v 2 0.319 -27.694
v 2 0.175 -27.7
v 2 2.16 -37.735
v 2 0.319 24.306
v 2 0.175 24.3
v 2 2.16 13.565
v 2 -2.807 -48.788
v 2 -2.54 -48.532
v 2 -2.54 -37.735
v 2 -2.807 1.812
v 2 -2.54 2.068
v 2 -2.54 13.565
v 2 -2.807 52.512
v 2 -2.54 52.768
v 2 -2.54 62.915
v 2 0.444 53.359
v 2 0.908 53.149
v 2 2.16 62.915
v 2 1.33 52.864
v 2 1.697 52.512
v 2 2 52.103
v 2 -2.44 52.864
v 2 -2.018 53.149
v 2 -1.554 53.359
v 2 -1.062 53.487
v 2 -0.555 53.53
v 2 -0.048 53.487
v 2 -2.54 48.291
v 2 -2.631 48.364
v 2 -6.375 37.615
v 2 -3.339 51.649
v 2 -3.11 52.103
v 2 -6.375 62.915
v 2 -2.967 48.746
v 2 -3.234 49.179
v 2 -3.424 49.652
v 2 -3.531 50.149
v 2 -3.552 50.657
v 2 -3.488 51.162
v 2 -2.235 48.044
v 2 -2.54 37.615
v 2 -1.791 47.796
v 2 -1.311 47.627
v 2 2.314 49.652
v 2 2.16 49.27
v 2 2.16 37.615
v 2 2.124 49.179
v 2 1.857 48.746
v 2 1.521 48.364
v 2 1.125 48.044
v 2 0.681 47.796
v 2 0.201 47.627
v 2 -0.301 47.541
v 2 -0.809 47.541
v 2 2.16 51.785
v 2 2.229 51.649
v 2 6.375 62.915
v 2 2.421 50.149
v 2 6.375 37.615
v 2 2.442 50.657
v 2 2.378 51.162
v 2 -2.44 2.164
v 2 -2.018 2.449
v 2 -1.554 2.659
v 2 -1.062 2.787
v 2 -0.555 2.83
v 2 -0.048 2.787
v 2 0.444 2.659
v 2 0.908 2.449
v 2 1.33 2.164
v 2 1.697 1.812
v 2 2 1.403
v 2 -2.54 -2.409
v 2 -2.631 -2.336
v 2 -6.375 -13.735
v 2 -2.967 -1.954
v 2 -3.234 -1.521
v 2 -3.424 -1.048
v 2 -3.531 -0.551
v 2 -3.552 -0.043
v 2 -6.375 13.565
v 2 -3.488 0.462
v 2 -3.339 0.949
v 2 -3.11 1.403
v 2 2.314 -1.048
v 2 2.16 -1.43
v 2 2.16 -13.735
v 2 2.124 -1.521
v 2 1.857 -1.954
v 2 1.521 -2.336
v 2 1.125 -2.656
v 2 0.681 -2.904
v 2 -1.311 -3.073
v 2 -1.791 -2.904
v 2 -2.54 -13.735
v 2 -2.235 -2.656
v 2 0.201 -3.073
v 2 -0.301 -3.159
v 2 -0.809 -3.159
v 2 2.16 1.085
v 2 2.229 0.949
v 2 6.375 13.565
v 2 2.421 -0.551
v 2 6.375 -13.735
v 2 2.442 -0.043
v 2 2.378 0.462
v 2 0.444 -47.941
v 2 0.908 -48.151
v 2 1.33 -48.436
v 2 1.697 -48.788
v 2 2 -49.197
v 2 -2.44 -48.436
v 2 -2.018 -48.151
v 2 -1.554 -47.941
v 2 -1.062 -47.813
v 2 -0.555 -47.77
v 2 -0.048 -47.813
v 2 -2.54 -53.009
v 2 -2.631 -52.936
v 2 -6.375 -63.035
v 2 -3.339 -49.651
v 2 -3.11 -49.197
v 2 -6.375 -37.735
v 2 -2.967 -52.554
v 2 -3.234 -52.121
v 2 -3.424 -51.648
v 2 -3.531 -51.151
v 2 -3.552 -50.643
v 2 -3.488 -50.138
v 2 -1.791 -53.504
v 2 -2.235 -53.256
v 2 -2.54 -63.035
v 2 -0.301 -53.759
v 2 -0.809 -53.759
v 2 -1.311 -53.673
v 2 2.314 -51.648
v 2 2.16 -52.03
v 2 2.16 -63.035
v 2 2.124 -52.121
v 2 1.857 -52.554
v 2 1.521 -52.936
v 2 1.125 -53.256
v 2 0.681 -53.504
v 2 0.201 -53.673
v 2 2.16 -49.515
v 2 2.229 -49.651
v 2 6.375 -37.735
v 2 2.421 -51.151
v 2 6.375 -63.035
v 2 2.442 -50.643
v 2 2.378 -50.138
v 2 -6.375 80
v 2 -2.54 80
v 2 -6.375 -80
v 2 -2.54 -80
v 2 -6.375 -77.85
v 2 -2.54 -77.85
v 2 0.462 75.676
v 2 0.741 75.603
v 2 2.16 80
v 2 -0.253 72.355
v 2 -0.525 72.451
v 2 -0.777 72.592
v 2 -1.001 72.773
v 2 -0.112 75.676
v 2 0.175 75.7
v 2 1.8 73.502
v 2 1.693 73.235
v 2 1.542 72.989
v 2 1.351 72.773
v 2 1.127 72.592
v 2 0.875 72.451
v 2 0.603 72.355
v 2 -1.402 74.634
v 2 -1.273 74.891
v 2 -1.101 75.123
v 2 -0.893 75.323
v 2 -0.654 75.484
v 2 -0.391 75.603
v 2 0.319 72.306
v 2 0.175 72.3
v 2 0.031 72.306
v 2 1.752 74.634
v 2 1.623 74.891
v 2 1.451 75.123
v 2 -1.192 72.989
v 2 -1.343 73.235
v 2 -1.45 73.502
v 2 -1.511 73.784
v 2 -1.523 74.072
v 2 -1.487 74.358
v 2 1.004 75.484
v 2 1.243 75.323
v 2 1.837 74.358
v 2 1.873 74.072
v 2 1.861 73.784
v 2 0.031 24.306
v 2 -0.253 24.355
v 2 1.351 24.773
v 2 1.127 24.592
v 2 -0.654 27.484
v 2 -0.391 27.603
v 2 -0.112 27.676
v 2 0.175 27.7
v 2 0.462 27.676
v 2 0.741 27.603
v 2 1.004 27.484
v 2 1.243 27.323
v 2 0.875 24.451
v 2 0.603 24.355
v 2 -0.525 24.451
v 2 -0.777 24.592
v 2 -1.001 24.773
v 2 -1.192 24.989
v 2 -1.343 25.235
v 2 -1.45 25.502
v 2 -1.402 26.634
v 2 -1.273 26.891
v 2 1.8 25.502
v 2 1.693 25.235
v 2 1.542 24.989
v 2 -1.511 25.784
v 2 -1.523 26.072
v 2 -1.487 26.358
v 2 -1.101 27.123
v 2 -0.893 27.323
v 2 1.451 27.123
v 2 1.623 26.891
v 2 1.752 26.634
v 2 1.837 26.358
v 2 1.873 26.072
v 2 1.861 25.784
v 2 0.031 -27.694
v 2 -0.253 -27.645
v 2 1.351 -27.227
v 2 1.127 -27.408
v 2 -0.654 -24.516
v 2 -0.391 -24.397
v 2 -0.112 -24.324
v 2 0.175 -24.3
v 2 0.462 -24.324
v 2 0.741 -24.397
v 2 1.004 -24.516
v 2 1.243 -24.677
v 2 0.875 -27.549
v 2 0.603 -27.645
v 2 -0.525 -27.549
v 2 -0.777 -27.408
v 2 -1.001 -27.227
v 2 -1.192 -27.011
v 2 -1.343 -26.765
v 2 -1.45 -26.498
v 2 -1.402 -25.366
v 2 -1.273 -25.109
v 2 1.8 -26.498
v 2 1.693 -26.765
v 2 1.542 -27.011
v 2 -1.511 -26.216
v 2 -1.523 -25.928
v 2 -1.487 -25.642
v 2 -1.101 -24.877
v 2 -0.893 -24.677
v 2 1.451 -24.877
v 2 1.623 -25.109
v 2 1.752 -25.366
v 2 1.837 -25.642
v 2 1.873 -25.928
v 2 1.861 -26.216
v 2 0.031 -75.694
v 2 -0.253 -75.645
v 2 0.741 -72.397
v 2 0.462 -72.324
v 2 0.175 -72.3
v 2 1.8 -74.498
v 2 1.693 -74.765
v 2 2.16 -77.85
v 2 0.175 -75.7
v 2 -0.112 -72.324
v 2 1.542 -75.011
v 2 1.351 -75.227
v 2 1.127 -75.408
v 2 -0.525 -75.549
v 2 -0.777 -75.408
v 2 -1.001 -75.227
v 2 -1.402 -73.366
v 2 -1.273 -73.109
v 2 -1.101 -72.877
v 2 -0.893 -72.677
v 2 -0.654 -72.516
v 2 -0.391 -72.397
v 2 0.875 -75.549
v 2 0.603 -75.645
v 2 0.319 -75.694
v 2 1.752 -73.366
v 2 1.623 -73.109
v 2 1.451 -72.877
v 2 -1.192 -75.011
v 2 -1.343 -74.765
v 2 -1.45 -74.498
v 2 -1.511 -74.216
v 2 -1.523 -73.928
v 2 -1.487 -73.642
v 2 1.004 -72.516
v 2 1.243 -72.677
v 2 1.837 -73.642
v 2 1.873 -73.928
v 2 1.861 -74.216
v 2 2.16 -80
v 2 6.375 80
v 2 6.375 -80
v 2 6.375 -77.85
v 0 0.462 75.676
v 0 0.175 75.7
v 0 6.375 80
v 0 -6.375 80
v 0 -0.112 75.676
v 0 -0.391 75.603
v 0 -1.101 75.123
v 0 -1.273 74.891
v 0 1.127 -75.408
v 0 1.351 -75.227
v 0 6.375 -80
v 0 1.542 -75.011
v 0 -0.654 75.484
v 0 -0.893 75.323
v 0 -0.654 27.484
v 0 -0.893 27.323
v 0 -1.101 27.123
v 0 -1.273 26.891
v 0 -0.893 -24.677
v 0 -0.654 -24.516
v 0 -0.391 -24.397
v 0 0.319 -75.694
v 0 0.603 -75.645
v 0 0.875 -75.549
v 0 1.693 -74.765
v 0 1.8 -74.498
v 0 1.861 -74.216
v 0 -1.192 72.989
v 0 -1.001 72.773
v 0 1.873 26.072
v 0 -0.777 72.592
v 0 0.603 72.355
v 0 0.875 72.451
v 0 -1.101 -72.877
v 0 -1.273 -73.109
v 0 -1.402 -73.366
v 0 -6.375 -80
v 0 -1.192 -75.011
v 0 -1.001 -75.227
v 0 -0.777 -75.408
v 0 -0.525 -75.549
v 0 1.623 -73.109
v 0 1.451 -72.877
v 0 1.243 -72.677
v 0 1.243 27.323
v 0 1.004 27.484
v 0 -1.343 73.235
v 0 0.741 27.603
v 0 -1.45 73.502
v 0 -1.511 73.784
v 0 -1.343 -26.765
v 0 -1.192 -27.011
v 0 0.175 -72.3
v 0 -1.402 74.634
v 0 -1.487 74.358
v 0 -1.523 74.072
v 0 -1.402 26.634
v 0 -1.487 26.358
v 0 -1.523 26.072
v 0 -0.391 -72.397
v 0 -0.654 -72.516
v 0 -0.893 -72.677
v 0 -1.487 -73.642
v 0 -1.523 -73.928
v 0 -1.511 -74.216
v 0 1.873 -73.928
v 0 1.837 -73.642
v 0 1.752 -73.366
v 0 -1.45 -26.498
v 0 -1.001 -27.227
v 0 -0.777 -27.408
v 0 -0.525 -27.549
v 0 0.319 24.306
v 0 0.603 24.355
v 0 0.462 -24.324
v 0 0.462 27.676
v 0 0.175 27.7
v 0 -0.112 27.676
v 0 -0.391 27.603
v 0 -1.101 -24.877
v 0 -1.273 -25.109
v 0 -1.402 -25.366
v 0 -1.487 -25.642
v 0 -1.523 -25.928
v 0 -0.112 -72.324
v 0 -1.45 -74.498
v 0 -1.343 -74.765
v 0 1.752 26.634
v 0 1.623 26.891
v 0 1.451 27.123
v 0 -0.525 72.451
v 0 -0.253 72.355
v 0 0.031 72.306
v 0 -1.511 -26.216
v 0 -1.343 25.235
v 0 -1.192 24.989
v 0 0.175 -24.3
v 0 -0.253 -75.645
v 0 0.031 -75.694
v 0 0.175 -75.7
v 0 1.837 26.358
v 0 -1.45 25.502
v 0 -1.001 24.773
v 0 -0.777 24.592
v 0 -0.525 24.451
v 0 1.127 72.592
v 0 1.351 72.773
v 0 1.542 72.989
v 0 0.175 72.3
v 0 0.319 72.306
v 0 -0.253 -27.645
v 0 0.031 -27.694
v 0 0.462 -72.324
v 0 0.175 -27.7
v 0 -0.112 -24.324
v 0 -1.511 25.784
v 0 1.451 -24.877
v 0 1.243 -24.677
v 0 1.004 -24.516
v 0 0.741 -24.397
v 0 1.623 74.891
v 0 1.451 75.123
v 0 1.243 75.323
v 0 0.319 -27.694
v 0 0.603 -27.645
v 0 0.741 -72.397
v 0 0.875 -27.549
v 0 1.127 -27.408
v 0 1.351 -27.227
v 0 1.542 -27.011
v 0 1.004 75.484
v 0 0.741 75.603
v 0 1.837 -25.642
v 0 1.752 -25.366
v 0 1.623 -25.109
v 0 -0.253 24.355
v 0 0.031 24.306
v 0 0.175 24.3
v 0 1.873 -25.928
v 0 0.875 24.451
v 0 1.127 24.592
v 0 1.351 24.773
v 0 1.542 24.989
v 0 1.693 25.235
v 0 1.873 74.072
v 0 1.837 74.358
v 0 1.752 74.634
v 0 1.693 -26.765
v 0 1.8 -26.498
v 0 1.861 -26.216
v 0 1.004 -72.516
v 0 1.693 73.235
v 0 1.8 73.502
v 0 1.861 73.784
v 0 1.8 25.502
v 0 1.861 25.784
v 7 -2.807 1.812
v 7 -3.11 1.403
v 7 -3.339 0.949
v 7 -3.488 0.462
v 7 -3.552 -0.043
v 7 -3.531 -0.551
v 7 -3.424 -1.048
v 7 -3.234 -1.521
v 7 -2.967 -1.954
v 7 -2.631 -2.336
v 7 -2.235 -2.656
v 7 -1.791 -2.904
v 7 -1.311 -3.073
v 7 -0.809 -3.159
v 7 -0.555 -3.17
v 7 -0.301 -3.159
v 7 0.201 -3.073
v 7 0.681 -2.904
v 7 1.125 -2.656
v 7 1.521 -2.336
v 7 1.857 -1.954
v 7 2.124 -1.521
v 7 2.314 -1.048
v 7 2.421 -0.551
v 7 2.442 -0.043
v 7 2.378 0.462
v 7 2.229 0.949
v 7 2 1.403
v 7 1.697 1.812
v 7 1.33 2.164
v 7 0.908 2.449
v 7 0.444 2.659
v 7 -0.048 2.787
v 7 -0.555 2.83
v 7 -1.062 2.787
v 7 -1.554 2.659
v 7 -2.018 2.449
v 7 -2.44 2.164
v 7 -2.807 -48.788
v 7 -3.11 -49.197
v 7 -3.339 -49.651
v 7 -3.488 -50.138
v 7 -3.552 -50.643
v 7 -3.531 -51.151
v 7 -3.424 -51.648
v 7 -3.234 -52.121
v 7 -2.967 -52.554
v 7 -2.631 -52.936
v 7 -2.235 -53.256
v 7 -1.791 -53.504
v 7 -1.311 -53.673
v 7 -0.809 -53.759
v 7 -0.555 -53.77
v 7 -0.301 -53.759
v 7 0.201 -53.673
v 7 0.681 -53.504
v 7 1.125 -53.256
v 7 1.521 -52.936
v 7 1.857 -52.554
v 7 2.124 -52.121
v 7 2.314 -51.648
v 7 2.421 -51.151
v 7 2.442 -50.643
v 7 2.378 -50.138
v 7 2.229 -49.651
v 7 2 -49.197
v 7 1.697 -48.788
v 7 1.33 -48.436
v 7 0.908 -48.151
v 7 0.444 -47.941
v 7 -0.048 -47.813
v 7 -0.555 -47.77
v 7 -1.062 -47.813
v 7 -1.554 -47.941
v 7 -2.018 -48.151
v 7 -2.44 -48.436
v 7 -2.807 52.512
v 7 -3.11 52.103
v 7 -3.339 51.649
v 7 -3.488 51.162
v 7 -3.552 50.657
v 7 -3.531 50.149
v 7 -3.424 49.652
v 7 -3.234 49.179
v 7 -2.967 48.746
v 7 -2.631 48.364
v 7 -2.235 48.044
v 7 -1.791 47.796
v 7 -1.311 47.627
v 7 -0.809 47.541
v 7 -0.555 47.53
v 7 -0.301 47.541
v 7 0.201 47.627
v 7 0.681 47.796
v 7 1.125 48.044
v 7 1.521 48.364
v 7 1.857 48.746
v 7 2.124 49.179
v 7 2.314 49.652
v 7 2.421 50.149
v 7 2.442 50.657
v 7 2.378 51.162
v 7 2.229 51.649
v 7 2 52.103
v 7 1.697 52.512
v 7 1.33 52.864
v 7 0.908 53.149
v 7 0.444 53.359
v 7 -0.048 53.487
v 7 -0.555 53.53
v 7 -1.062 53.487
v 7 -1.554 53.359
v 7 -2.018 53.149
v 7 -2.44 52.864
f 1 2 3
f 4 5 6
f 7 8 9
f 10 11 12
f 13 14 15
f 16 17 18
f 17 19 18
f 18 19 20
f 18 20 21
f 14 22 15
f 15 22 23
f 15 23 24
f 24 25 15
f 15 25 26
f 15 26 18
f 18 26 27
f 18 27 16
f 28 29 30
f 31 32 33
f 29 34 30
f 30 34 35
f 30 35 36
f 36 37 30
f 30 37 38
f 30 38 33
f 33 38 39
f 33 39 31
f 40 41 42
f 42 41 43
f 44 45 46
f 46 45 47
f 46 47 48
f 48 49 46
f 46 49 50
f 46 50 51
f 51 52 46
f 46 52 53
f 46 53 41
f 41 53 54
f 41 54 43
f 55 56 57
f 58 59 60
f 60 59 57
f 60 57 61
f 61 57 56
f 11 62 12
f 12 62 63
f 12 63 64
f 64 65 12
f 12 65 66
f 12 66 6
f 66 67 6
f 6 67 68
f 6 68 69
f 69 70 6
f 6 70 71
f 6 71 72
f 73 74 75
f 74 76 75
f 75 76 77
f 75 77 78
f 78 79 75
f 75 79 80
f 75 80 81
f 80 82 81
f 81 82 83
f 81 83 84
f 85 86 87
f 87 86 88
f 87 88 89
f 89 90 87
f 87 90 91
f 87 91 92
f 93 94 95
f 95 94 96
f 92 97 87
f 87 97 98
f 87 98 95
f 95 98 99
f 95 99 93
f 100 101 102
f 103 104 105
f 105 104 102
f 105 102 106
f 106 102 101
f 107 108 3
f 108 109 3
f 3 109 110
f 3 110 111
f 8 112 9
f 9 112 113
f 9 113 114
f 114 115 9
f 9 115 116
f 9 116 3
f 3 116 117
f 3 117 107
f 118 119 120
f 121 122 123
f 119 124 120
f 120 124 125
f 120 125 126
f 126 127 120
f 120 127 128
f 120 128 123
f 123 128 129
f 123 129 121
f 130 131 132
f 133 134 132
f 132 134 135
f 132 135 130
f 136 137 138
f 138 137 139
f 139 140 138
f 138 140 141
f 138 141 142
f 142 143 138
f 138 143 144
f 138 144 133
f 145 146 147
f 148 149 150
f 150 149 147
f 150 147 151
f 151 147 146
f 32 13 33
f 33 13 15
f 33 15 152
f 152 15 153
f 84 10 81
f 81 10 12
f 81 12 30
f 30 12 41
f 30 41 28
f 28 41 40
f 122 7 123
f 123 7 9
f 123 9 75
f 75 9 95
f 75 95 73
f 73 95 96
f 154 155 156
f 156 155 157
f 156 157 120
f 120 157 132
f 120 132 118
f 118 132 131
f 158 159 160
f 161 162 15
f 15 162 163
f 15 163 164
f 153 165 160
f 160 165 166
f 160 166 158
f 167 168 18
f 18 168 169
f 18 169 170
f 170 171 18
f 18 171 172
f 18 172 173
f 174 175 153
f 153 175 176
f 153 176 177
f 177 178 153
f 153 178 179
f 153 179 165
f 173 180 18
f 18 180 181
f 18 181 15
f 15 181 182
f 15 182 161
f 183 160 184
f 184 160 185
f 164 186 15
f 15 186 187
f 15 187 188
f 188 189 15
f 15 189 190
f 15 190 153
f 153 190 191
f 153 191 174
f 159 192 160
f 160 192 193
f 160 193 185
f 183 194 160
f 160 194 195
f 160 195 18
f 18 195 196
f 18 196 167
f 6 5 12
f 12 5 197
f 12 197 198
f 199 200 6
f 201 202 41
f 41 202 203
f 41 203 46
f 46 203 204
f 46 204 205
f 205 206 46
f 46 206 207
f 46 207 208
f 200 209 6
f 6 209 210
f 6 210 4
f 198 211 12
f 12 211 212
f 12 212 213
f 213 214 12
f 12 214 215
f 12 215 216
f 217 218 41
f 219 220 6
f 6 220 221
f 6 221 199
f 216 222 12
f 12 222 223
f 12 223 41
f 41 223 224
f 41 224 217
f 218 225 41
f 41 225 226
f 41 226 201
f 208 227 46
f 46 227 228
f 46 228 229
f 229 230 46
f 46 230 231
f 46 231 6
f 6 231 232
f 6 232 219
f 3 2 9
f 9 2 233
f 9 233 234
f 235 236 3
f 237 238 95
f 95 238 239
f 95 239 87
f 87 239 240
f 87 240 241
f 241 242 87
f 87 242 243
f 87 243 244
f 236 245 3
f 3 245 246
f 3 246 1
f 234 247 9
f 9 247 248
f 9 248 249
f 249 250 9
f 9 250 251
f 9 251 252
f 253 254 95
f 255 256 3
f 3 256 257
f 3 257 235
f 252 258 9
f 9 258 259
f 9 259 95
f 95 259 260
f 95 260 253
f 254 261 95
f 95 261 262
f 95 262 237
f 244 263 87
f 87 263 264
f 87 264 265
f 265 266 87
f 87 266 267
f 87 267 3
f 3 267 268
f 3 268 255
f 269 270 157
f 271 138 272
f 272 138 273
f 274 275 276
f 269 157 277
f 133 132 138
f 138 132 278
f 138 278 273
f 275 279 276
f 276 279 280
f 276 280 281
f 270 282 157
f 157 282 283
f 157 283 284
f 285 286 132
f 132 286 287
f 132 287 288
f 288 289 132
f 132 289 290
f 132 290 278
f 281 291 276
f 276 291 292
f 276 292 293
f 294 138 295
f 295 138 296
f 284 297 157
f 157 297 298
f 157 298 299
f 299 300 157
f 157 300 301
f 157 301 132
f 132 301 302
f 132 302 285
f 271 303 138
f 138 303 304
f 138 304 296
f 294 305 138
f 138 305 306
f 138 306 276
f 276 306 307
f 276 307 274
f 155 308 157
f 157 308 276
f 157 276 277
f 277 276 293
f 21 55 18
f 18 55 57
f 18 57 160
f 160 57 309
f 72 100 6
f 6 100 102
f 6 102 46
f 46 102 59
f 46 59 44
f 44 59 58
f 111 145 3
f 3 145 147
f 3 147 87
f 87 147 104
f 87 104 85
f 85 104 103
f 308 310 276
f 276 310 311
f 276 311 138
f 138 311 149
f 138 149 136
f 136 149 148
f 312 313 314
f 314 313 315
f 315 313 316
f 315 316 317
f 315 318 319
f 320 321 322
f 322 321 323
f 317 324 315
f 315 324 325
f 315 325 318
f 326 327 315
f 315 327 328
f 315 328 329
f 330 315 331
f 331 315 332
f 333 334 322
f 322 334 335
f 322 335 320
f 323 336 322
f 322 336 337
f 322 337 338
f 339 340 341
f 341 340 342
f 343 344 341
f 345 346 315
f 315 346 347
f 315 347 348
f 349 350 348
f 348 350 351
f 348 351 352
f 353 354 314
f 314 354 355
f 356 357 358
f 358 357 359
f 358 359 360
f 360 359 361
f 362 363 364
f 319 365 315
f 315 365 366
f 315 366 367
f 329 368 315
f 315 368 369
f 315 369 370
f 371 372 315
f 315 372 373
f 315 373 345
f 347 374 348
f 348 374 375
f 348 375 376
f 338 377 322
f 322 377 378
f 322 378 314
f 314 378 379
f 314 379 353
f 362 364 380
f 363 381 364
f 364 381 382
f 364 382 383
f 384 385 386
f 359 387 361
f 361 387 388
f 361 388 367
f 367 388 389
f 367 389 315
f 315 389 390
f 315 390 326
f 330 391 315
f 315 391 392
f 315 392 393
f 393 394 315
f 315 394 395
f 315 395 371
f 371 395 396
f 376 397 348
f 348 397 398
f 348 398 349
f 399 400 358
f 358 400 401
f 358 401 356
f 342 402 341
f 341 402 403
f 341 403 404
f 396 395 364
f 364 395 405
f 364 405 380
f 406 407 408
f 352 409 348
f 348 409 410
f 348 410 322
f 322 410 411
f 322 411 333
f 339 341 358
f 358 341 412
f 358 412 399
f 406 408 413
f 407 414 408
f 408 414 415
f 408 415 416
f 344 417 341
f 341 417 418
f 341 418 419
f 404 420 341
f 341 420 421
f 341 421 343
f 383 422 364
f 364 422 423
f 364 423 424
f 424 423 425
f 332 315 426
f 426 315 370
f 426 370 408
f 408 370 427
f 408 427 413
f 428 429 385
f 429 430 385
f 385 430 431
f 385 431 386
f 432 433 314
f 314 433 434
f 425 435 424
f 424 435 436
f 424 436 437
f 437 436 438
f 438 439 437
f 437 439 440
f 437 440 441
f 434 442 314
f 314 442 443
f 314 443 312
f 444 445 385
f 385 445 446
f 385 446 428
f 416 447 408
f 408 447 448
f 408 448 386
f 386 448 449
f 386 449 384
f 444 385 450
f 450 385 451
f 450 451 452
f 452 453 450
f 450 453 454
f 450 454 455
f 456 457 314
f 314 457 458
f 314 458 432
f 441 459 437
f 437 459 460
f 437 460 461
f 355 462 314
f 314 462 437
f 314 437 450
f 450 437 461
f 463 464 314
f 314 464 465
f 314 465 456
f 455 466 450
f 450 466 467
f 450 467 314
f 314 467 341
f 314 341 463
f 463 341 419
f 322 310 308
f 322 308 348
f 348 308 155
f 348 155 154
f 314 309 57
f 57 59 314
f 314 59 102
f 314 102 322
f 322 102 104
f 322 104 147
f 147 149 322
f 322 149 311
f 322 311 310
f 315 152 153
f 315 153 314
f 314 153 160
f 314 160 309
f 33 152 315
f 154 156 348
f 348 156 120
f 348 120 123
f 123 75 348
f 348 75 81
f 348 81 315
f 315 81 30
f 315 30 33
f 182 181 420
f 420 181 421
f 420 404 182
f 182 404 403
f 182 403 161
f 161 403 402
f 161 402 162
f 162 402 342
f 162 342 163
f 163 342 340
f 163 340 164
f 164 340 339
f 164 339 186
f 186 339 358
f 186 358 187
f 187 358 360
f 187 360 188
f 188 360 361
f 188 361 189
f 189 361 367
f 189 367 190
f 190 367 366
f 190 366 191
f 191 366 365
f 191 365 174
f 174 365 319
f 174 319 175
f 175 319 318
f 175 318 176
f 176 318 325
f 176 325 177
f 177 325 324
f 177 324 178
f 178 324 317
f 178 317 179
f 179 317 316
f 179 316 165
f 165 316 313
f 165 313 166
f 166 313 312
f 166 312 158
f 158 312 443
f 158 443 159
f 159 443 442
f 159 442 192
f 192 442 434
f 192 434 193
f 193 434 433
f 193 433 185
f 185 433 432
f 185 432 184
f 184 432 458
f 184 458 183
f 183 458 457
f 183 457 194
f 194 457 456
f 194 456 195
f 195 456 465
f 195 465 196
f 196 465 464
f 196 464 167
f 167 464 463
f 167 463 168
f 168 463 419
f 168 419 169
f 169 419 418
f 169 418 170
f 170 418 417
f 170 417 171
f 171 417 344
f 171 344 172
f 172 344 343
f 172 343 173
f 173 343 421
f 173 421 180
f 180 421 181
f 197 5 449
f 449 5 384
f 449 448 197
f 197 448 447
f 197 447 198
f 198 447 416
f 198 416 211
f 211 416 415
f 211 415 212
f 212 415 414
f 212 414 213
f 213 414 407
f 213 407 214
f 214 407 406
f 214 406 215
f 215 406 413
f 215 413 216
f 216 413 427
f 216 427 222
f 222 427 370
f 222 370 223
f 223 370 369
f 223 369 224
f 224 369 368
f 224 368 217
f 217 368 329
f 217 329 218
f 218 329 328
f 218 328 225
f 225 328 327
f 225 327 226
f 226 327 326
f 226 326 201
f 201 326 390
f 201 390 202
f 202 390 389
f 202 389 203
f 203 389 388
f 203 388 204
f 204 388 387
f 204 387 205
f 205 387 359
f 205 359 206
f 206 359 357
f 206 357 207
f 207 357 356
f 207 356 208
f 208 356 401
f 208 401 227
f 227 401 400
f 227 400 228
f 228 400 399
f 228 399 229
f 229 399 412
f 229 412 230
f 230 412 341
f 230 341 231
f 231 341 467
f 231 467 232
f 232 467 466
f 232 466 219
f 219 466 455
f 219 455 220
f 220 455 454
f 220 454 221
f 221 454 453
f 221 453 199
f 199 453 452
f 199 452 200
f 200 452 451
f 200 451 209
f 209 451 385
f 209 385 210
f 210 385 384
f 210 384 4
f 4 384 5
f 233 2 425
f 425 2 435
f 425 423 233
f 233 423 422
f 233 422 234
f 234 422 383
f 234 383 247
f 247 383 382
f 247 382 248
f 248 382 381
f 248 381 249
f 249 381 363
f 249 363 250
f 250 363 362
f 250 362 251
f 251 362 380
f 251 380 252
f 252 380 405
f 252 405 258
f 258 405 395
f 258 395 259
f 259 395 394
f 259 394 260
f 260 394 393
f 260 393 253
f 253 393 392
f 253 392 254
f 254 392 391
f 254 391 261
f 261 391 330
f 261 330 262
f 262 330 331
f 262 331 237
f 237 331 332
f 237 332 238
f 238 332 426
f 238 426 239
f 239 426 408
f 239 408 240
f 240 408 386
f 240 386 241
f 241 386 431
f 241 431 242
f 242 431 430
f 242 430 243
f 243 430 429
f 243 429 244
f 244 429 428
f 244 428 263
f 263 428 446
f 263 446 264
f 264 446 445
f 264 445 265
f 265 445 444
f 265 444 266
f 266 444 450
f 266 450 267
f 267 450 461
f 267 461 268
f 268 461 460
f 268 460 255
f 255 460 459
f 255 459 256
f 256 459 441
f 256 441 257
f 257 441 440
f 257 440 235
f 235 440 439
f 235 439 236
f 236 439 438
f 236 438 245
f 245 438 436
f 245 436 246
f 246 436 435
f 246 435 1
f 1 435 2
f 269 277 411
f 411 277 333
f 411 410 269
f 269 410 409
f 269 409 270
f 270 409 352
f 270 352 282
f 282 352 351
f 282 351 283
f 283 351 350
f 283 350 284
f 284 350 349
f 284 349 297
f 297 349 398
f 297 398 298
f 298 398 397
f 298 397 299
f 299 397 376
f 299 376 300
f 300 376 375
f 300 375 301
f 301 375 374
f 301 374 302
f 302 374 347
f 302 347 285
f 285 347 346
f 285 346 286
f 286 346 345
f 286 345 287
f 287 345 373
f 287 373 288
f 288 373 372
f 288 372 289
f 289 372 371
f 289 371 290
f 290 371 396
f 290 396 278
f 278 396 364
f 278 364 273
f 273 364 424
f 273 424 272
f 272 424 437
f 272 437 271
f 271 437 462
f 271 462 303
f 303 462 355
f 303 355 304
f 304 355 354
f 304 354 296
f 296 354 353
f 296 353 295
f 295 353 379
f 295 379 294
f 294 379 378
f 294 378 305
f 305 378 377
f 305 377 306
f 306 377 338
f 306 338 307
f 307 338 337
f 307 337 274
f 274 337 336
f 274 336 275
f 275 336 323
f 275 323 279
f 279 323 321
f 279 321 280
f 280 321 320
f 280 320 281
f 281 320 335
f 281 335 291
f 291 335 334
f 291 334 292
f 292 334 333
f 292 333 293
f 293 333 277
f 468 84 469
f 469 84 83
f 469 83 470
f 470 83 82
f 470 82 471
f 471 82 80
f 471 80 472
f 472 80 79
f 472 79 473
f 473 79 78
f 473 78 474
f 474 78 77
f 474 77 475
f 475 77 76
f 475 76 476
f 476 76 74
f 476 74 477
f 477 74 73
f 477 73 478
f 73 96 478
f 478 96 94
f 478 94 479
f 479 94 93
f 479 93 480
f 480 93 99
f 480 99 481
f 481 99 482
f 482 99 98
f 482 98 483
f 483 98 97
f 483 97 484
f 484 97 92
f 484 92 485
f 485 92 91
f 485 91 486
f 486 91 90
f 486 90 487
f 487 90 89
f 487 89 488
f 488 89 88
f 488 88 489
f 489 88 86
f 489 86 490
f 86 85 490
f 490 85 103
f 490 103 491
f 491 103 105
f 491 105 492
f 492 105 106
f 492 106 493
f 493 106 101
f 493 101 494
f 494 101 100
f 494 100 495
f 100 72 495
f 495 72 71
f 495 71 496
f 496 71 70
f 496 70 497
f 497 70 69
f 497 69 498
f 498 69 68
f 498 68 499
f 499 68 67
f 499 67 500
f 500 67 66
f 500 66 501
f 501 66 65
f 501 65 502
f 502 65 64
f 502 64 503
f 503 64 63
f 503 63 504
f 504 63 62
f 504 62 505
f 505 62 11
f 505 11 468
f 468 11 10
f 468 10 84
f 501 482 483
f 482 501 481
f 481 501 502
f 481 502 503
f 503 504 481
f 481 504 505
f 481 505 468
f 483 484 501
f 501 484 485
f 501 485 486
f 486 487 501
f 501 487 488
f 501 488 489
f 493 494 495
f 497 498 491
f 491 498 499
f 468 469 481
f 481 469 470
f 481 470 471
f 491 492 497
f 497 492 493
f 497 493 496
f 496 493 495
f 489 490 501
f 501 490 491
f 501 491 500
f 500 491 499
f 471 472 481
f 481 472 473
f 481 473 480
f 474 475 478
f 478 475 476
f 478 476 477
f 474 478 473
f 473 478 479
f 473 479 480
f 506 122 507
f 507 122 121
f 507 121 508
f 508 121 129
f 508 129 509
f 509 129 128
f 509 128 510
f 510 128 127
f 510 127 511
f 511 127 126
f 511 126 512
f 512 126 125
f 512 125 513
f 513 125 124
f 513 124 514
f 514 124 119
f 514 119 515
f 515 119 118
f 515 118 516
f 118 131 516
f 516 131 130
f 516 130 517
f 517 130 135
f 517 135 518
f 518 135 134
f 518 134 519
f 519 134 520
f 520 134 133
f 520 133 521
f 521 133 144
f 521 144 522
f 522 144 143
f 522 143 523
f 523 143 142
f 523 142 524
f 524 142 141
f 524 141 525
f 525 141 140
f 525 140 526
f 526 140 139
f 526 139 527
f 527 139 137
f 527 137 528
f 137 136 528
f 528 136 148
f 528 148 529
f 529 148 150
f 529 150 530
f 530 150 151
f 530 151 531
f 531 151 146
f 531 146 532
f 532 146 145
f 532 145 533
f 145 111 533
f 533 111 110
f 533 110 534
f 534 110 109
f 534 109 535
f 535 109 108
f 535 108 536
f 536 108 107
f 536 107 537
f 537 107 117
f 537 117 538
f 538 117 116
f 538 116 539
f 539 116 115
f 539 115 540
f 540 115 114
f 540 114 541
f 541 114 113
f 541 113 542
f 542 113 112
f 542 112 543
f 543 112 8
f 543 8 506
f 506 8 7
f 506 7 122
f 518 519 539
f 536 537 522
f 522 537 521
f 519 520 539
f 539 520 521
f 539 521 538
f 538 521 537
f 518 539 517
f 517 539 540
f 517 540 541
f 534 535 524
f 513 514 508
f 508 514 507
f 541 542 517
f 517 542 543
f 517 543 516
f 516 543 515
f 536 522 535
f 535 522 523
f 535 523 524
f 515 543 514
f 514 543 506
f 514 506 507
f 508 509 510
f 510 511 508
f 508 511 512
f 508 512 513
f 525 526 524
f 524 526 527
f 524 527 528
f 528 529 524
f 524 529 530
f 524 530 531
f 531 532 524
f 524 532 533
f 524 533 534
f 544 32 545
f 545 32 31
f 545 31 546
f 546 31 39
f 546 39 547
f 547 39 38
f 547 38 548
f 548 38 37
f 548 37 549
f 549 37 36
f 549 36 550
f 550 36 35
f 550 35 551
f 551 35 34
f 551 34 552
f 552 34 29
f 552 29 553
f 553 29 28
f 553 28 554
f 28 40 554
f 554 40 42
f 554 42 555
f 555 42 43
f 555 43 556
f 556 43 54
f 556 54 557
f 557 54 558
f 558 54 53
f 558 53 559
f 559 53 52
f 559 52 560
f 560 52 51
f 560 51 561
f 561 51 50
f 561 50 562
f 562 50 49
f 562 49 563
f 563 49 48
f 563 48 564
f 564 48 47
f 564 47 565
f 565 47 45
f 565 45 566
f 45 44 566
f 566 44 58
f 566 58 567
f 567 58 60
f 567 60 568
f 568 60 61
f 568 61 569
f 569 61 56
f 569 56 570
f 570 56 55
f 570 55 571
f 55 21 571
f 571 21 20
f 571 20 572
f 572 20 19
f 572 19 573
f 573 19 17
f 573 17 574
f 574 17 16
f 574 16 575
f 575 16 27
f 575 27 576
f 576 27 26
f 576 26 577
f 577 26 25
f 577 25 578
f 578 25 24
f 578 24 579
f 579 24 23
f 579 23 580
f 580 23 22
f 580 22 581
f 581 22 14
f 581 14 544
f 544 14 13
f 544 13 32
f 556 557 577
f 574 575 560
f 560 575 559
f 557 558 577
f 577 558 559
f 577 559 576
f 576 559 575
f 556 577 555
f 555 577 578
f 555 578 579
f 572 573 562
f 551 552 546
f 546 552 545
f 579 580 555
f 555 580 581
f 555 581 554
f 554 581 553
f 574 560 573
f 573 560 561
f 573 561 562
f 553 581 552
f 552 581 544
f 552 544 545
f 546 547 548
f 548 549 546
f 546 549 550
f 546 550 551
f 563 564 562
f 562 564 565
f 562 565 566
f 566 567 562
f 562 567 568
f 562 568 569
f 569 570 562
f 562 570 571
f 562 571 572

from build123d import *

# Parameters (mm, degrees)
ESBO_O1_W                = 160
ESBO_O1_H                = 12.75
ESBO_O1_R                = 1.7
RESSALTO_EXTRUS_O1_DEPTH = 2
ESBO_O2_R                = 3
RESSALTO_EXTRUS_O2_DEPTH = 5


with BuildPart() as part:
    # Esboço1 → Ressalto-extrusão1 (new body)
    with BuildSketch(Plane(origin=(0, 0, 0), x_dir=(0, 0, -1), z_dir=(1, 0, 0))):
        Rectangle(ESBO_O1_W, ESBO_O1_H)
        with Locations((-74, 0.175)):
            Circle(ESBO_O1_R, mode=Mode.SUBTRACT)
        with Locations((-26, 0.175)):
            Circle(ESBO_O1_R, mode=Mode.SUBTRACT)
        with Locations((26, 0.175)):
            Circle(ESBO_O1_R, mode=Mode.SUBTRACT)
        with Locations((74, 0.175)):
            Circle(ESBO_O1_R, mode=Mode.SUBTRACT)
    extrude(amount=RESSALTO_EXTRUS_O1_DEPTH)

    # Esboço2 → Ressalto-extrusão2 (add)
    with BuildSketch(Plane(origin=(2, 0, 0), x_dir=(0, 0, -1), z_dir=(1, 0, 0))):
        with Locations((0.17, -0.555)):
            Circle(ESBO_O2_R)
        with Locations((50.77, -0.555)):
            Circle(ESBO_O2_R)
        with Locations((-50.53, -0.555)):
            Circle(ESBO_O2_R)
    extrude(amount=RESSALTO_EXTRUS_O2_DEPTH)


solid = part.part
